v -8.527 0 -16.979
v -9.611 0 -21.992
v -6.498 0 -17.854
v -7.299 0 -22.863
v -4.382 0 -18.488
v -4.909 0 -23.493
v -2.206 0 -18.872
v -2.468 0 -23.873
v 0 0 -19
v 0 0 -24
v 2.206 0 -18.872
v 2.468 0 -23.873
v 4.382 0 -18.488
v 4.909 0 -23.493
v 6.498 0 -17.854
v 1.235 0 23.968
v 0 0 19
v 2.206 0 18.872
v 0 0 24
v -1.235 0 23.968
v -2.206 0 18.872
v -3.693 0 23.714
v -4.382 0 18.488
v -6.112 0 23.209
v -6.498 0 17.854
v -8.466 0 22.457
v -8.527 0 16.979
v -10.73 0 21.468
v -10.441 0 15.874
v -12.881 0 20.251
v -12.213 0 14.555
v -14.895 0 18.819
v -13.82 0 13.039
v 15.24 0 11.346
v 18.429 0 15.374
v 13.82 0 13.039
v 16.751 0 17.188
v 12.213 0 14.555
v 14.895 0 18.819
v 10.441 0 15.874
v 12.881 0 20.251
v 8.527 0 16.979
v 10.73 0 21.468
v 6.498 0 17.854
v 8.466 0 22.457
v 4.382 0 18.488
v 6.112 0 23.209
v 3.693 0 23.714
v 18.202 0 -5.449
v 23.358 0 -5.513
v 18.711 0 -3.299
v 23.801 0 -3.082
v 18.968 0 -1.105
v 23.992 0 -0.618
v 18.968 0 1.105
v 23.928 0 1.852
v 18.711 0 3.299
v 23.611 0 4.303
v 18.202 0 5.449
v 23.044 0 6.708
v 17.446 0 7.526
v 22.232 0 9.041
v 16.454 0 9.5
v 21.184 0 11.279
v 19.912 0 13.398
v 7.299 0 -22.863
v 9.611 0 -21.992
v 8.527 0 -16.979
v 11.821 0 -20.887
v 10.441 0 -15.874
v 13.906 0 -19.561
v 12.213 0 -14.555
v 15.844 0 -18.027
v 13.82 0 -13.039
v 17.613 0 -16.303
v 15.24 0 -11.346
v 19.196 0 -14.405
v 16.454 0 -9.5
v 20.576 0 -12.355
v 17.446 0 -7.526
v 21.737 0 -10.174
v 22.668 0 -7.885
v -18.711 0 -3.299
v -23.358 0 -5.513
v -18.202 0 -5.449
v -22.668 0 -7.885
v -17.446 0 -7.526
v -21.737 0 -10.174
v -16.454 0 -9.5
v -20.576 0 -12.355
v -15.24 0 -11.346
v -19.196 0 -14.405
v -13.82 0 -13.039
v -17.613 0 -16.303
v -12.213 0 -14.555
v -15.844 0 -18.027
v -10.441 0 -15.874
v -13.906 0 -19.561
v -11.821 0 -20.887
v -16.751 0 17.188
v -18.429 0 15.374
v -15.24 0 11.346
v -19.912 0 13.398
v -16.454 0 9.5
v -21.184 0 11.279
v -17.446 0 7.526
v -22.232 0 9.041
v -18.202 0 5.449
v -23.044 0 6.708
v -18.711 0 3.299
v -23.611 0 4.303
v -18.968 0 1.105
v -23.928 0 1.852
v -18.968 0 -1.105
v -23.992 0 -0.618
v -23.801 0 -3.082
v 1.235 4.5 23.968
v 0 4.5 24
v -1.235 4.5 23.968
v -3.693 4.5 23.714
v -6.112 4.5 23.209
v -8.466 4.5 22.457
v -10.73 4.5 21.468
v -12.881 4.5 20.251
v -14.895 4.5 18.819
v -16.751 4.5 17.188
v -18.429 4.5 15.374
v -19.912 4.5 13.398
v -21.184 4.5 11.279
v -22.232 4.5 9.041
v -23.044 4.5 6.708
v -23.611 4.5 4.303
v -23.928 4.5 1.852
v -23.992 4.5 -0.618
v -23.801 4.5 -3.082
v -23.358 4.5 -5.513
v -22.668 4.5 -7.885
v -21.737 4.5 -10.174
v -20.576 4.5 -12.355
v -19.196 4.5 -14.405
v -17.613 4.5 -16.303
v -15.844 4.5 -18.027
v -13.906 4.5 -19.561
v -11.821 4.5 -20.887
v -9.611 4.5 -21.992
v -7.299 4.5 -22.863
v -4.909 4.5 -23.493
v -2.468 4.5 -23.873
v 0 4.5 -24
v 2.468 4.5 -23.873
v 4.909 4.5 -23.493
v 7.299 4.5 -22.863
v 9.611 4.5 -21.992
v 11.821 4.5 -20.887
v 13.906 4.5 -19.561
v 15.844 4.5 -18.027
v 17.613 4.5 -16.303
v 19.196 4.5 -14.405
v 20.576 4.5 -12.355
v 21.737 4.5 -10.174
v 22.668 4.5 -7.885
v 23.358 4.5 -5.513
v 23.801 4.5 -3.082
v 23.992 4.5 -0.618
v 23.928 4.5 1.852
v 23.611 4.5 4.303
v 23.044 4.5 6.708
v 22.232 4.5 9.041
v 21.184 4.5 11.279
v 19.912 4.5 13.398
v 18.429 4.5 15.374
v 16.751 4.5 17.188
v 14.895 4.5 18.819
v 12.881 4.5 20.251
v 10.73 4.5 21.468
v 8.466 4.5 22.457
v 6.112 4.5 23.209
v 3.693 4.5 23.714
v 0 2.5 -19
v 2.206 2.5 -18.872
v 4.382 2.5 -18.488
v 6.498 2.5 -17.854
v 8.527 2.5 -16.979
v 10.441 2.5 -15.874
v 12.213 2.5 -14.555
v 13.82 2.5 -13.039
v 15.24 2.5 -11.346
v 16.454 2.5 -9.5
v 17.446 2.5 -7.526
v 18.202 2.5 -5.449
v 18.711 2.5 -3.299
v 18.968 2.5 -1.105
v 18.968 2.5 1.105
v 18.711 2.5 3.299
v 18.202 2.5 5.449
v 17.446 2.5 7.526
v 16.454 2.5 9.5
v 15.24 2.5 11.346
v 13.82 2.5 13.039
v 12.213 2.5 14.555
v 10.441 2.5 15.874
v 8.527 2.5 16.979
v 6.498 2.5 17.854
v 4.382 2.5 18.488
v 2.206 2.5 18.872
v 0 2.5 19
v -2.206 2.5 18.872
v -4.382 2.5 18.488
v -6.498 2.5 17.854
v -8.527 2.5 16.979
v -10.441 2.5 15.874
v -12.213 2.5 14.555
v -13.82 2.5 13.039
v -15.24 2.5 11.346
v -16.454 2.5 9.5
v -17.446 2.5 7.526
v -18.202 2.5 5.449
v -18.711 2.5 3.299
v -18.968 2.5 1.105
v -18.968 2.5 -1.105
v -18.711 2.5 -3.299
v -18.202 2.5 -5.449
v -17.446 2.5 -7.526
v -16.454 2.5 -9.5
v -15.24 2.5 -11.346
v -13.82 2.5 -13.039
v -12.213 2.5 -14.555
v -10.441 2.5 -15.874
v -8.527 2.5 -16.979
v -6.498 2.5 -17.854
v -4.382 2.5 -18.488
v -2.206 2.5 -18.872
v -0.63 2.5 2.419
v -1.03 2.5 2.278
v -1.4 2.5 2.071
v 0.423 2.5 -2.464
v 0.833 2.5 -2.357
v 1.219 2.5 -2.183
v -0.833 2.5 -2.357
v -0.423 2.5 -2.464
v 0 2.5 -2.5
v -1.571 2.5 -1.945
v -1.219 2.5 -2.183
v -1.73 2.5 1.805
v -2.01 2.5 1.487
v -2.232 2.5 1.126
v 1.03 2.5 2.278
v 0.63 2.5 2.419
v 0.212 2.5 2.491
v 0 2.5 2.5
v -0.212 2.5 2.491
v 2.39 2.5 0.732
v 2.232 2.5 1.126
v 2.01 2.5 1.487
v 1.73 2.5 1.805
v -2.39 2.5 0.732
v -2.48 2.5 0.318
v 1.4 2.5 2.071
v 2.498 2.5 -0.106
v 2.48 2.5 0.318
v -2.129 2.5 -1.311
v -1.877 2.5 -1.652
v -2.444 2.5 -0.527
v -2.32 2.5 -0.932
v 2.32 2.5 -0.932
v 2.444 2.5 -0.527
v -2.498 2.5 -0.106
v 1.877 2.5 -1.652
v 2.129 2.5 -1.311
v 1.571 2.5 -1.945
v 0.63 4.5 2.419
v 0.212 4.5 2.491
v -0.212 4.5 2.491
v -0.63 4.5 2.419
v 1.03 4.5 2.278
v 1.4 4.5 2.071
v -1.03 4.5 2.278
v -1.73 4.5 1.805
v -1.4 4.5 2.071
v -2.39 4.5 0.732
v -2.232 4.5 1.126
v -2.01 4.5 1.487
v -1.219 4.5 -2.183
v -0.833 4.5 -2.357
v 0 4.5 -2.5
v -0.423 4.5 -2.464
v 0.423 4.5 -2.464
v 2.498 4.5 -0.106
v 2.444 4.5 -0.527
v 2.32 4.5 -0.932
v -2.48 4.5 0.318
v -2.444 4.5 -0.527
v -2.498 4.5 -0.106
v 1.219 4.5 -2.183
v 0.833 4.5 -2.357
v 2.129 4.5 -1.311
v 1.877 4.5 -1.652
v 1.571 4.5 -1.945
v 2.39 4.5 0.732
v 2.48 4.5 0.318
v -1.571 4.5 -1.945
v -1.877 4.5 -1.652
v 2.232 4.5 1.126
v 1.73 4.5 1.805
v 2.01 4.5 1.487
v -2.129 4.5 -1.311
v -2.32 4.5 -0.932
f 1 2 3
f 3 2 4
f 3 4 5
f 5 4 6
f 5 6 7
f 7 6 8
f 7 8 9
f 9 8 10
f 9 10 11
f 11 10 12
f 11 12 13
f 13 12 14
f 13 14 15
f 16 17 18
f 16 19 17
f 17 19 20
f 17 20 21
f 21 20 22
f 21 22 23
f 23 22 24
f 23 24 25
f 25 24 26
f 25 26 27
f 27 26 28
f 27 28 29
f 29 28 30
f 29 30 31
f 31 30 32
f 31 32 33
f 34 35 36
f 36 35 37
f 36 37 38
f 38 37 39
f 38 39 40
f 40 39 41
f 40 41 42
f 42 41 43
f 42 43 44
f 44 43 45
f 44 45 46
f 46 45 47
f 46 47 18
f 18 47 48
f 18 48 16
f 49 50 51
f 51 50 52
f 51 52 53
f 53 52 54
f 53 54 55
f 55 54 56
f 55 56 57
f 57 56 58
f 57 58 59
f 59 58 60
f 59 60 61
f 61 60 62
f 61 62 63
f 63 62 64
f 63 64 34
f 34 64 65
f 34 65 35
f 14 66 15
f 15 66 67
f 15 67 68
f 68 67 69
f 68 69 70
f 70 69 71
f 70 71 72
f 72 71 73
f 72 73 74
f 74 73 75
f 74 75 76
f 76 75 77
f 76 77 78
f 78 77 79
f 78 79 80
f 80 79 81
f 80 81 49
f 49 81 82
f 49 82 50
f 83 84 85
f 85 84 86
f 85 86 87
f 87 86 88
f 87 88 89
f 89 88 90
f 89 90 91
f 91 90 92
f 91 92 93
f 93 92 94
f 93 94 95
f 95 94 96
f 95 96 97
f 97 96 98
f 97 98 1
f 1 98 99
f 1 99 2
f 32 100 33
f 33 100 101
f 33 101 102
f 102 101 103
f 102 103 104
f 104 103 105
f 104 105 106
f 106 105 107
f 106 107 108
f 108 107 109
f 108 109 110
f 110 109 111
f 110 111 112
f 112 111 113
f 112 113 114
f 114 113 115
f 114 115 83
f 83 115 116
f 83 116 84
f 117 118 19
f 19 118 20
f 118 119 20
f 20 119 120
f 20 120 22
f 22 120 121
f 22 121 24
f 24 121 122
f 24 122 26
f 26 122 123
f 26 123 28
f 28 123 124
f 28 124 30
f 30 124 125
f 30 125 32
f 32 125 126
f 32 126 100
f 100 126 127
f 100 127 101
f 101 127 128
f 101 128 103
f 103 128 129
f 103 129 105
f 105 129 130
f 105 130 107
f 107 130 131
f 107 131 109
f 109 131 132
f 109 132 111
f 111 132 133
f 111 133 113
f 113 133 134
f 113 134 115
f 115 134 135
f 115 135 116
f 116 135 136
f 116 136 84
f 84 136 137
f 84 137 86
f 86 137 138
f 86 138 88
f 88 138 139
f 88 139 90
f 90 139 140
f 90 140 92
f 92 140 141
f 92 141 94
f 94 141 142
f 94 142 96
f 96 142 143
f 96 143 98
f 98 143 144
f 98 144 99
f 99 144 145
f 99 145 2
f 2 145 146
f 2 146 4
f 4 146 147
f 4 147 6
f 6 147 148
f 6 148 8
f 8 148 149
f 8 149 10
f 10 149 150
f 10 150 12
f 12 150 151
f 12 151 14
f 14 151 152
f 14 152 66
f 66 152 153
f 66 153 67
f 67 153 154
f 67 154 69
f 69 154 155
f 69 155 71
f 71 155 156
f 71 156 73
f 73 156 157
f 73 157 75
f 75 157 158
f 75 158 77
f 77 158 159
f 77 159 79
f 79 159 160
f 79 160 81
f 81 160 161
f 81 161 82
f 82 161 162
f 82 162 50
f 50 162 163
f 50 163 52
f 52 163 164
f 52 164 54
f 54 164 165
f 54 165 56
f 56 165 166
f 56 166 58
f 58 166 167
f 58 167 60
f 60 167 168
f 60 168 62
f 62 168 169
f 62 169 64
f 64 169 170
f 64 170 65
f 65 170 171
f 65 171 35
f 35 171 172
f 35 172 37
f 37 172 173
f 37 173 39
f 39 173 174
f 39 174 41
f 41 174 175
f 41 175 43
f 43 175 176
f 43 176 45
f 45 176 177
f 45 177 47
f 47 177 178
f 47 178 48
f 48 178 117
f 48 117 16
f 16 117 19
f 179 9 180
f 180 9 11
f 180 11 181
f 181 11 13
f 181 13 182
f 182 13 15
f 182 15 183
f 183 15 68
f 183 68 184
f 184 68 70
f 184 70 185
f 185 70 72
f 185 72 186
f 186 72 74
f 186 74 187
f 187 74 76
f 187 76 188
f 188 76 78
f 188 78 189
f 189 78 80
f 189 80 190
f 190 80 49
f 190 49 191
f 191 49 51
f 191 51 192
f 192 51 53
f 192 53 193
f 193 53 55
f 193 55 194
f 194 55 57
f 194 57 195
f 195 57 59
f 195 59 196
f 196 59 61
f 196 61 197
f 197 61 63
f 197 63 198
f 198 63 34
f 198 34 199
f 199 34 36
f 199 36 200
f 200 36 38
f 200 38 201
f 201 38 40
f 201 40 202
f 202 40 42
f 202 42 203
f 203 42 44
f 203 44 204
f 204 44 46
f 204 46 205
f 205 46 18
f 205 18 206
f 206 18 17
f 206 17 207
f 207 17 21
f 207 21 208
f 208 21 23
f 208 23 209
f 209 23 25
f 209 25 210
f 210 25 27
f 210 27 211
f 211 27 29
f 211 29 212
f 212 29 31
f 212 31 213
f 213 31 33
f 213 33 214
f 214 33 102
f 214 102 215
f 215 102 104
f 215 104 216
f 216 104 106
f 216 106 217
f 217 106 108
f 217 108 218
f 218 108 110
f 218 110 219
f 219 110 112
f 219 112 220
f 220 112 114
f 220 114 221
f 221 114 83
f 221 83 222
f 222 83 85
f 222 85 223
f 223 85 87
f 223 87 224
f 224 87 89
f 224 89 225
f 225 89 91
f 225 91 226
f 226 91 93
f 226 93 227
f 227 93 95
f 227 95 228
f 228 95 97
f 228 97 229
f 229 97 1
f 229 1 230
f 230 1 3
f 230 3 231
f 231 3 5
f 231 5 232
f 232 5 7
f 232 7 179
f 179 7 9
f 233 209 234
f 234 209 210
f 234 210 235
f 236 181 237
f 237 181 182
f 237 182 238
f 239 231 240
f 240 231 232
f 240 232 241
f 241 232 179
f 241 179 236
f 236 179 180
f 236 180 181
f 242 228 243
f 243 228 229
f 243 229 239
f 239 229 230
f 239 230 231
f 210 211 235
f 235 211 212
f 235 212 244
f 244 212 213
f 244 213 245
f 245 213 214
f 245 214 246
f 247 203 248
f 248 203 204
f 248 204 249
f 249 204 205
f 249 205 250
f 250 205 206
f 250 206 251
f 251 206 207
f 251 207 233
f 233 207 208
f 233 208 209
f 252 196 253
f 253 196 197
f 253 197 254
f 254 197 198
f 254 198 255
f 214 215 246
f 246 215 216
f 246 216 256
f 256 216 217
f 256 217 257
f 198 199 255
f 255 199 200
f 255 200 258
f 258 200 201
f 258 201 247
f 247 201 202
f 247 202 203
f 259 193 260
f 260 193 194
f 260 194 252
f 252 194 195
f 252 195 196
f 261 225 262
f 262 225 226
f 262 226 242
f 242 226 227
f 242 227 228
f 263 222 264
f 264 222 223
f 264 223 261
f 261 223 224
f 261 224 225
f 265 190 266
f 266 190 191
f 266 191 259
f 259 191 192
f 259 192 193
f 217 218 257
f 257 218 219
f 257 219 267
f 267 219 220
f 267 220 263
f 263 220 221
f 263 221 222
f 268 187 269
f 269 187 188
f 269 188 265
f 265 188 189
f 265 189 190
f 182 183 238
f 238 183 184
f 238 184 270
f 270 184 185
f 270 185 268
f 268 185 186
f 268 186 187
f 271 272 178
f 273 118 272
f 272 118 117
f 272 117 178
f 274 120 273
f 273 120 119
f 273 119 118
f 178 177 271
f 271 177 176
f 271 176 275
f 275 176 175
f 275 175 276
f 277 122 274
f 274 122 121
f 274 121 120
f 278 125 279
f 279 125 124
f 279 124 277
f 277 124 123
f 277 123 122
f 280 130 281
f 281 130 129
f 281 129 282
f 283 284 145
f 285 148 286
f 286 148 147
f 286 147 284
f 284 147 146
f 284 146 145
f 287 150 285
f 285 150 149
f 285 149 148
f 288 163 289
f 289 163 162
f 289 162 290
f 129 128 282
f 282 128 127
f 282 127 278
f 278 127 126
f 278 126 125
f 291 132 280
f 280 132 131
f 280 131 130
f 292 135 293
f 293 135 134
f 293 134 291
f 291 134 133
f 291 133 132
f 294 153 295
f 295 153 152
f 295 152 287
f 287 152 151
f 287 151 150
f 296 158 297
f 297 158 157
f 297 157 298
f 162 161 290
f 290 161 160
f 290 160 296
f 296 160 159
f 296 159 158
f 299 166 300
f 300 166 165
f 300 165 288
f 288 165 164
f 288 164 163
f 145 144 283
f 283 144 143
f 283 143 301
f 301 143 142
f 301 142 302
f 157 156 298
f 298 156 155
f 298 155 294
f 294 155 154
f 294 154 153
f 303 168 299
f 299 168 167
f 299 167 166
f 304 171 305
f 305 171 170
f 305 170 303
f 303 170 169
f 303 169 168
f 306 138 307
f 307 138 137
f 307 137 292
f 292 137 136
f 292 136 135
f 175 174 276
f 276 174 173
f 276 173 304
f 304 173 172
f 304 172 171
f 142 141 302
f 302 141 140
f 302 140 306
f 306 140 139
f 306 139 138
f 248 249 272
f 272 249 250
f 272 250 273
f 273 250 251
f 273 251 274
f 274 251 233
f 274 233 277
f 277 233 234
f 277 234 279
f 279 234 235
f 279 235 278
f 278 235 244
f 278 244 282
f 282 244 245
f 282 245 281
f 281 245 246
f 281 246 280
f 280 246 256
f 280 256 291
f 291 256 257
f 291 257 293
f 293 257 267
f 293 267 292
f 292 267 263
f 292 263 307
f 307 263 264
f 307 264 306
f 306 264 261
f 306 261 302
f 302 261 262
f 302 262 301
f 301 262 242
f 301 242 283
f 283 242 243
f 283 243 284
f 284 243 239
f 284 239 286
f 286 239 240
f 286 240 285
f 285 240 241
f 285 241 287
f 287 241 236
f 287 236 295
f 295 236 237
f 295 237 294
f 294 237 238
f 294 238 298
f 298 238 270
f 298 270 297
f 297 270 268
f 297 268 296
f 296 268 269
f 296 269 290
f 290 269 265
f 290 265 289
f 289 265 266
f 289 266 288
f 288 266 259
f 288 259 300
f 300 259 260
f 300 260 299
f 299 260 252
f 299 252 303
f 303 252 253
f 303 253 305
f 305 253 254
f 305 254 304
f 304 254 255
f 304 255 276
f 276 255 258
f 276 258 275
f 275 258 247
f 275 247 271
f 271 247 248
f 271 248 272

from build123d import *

# Parameters (mm, degrees)
SKETCH1_R           = 24
SKETCH1_R_2         = 19
BOSS_EXTRUDE1_DEPTH = 2.5
SKETCH2_R           = 24
BOSS_EXTRUDE2_DEPTH = 2
SKETCH3_R           = 2.5
CUT_EXTRUDE1_DEPTH  = 35.238136632


with BuildPart() as part:
    # Sketch1 → Boss-Extrude1 (new body)
    with BuildSketch(Plane(origin=(0, 0, 0), x_dir=(1, 0, 0), z_dir=(0, 1, 0))):
        with Locations(Location((0, 0, 0), (0, 0, 270))):
            Circle(SKETCH1_R)
        with Locations(Location((0, 0, 0), (0, 0, 270))):
            Circle(SKETCH1_R_2, mode=Mode.SUBTRACT)
    extrude(amount=BOSS_EXTRUDE1_DEPTH)

    # Sketch2 → Boss-Extrude2 (add)
    with BuildSketch(Plane(origin=(0, 2.5, 0), x_dir=(1, 0, 0), z_dir=(0, 1, 0))):
        with Locations(Location((0, 0, 0), (0, 0, 270))):
            Circle(SKETCH2_R)
    extrude(amount=BOSS_EXTRUDE2_DEPTH)

    # Sketch3 → Cut-Extrude1 (cut, through all)
    with BuildSketch(Plane.XZ):
        with Locations(Location((0, 0, 0), (0, 0, 270))):
            Circle(SKETCH3_R)
    extrude(amount=-CUT_EXTRUDE1_DEPTH, mode=Mode.SUBTRACT)


solid = part.part
